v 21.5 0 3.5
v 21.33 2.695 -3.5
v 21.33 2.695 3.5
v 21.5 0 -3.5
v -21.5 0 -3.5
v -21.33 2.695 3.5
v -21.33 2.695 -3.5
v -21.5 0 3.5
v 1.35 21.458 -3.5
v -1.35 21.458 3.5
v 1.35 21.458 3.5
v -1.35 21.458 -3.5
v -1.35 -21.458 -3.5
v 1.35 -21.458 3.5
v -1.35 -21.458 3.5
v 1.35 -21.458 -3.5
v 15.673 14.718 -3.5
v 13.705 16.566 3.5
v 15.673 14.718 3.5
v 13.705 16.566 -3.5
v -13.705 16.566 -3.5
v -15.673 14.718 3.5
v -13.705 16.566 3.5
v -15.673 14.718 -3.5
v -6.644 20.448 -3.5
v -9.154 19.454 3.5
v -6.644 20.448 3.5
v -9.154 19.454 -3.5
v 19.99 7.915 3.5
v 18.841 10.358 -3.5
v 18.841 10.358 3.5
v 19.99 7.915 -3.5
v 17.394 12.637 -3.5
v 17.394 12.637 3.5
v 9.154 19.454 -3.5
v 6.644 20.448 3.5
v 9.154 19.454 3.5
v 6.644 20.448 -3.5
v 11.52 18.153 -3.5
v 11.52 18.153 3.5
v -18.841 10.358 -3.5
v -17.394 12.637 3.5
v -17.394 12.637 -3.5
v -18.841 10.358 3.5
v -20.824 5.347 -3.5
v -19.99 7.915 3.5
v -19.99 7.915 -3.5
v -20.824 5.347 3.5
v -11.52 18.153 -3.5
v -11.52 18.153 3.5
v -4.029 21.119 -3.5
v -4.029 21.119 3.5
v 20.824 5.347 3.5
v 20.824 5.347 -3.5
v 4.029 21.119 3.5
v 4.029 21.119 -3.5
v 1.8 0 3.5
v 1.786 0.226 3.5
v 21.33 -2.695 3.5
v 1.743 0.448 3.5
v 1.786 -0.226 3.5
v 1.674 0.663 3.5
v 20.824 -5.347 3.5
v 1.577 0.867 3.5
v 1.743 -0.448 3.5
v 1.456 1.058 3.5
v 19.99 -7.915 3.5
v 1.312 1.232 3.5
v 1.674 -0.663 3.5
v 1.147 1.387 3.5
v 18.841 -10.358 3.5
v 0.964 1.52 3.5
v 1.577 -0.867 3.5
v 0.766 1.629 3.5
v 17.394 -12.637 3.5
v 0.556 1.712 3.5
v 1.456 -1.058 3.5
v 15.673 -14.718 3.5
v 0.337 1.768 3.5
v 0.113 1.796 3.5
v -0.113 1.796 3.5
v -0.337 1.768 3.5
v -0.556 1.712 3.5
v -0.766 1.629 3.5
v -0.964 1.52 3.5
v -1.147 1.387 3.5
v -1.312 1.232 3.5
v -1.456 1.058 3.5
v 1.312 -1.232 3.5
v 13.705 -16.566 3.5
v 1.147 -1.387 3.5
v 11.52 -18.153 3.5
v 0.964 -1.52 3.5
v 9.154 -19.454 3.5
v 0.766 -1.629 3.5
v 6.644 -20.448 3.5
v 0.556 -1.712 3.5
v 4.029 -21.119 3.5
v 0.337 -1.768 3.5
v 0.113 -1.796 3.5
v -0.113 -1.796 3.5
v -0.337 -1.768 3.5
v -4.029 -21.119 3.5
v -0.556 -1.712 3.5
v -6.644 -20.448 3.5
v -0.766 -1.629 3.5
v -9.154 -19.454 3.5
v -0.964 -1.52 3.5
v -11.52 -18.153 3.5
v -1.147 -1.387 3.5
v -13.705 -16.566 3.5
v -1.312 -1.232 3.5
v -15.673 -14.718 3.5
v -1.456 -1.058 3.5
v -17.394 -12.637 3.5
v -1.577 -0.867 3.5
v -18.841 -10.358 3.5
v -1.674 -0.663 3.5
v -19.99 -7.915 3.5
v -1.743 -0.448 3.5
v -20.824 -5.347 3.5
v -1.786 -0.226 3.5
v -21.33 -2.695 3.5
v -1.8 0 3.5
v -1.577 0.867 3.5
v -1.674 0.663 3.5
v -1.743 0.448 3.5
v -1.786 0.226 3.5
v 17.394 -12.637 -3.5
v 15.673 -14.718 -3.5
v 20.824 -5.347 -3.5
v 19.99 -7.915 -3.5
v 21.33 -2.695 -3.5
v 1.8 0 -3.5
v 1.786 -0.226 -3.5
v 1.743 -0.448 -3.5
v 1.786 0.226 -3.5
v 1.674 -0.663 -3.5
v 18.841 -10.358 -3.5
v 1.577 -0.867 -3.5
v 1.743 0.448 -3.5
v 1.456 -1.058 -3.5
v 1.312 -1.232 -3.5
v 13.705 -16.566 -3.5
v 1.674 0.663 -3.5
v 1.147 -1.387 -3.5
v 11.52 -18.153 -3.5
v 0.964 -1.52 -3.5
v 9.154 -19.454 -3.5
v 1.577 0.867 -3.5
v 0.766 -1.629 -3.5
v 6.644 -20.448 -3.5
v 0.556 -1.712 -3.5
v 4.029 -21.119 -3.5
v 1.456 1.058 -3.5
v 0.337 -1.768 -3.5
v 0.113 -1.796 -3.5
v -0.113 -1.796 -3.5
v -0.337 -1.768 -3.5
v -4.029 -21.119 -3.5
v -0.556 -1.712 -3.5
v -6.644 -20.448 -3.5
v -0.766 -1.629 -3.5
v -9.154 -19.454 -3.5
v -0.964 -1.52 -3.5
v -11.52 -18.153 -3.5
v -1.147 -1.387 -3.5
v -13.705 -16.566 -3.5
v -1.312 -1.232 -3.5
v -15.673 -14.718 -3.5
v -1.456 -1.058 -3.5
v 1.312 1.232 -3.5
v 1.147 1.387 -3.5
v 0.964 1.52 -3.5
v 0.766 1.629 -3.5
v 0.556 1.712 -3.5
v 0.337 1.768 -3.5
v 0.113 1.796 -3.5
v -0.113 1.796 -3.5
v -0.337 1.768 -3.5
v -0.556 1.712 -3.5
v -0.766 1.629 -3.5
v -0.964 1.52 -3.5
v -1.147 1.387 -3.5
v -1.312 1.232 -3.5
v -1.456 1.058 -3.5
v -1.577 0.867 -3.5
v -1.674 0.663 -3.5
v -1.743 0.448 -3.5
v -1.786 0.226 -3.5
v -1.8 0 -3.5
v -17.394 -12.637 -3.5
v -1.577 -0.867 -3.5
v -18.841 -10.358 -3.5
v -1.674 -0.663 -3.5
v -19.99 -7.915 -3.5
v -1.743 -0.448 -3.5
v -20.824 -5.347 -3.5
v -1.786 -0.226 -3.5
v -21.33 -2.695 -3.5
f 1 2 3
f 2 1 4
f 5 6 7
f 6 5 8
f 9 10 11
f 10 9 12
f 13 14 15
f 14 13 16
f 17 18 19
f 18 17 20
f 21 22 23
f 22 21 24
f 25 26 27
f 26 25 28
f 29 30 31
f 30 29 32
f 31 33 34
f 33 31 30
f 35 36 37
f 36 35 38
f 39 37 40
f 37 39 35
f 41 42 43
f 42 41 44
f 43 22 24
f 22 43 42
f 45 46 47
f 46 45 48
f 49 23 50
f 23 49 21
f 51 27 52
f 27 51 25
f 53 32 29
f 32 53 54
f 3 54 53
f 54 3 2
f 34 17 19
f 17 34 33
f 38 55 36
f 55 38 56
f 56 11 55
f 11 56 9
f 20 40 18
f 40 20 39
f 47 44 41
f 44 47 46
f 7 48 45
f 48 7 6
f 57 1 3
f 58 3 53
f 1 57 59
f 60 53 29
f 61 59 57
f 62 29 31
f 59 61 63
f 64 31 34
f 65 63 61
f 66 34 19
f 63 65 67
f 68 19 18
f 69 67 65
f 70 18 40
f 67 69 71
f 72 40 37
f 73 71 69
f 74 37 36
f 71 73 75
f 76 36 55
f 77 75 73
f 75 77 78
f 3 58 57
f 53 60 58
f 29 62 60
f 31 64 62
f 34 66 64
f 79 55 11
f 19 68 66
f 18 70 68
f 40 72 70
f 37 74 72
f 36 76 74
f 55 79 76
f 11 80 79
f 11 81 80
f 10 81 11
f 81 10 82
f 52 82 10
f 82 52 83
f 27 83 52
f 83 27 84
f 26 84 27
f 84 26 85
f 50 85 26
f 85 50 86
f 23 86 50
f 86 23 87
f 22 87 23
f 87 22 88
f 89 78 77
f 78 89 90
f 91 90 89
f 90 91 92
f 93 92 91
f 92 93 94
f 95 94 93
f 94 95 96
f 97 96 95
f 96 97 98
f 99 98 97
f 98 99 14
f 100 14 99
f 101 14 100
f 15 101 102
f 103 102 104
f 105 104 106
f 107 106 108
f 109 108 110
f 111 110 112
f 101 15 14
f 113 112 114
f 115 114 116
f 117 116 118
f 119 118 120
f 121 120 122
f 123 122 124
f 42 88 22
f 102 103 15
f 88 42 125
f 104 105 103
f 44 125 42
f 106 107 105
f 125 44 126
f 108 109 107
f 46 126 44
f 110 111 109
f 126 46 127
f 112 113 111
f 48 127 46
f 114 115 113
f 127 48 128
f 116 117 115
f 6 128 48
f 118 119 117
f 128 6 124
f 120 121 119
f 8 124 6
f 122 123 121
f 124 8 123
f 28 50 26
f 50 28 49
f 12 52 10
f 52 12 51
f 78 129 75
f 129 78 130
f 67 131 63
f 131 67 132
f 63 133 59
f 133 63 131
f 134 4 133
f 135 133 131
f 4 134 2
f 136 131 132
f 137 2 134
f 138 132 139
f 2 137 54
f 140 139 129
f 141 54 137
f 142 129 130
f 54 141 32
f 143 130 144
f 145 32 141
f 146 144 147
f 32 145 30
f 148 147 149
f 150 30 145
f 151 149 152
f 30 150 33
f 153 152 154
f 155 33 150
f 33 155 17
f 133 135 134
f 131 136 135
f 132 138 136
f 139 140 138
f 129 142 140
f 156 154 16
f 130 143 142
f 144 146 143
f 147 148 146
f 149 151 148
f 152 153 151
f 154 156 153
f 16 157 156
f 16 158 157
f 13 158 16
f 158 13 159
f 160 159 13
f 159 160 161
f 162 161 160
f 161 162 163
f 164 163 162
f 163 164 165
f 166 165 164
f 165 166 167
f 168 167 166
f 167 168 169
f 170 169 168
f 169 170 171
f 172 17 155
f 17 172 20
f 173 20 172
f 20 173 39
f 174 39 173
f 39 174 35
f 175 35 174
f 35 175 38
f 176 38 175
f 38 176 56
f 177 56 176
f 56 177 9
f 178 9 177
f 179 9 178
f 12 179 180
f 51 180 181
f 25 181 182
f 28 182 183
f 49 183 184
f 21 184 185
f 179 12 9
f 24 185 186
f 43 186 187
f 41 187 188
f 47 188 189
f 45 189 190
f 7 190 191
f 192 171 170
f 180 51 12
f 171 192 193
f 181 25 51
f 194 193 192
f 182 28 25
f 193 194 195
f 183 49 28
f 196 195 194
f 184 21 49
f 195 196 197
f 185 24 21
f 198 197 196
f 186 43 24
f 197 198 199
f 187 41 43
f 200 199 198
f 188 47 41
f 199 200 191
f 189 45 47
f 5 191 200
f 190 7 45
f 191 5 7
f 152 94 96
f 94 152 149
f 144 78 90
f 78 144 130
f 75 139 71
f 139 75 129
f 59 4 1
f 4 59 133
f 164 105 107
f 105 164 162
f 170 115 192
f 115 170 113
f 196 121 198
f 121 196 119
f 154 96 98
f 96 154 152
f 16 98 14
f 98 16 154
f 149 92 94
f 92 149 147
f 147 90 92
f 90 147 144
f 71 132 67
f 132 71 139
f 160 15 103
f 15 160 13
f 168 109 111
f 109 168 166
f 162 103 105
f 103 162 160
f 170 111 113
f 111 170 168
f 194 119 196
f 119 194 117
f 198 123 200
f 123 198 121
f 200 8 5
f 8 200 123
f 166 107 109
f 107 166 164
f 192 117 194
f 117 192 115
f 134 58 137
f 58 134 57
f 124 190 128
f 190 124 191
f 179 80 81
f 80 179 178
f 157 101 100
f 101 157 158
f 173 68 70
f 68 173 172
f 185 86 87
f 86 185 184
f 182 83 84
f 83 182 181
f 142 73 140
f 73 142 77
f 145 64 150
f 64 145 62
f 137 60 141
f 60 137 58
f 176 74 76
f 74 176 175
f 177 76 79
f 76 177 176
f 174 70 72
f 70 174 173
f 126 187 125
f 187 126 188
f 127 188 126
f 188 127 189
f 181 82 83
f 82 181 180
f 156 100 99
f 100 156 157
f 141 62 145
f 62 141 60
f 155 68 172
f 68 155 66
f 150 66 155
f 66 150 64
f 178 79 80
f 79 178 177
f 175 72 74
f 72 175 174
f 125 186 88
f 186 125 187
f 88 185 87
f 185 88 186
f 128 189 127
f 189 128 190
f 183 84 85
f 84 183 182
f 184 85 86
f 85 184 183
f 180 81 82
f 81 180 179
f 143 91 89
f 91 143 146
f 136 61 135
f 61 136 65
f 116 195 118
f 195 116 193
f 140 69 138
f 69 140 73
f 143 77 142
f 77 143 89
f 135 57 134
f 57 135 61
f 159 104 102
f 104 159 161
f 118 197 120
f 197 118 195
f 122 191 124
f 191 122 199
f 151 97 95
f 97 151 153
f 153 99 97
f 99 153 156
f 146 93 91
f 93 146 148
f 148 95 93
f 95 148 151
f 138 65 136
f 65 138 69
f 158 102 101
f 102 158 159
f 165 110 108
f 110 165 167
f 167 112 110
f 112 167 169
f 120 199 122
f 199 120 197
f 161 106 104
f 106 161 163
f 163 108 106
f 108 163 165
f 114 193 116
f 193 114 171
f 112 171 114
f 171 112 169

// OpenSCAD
$fn = 50;


difference() {
	union() {
		translate(v = [0, 0, -3.5000000000]) {
			cylinder(h = 7, r = 21.5000000000);
		}
	}
	union() {
		translate(v = [0, 0, -100.0000000000]) {
			cylinder(h = 200, r = 1.8000000000);
		}
	}
}
